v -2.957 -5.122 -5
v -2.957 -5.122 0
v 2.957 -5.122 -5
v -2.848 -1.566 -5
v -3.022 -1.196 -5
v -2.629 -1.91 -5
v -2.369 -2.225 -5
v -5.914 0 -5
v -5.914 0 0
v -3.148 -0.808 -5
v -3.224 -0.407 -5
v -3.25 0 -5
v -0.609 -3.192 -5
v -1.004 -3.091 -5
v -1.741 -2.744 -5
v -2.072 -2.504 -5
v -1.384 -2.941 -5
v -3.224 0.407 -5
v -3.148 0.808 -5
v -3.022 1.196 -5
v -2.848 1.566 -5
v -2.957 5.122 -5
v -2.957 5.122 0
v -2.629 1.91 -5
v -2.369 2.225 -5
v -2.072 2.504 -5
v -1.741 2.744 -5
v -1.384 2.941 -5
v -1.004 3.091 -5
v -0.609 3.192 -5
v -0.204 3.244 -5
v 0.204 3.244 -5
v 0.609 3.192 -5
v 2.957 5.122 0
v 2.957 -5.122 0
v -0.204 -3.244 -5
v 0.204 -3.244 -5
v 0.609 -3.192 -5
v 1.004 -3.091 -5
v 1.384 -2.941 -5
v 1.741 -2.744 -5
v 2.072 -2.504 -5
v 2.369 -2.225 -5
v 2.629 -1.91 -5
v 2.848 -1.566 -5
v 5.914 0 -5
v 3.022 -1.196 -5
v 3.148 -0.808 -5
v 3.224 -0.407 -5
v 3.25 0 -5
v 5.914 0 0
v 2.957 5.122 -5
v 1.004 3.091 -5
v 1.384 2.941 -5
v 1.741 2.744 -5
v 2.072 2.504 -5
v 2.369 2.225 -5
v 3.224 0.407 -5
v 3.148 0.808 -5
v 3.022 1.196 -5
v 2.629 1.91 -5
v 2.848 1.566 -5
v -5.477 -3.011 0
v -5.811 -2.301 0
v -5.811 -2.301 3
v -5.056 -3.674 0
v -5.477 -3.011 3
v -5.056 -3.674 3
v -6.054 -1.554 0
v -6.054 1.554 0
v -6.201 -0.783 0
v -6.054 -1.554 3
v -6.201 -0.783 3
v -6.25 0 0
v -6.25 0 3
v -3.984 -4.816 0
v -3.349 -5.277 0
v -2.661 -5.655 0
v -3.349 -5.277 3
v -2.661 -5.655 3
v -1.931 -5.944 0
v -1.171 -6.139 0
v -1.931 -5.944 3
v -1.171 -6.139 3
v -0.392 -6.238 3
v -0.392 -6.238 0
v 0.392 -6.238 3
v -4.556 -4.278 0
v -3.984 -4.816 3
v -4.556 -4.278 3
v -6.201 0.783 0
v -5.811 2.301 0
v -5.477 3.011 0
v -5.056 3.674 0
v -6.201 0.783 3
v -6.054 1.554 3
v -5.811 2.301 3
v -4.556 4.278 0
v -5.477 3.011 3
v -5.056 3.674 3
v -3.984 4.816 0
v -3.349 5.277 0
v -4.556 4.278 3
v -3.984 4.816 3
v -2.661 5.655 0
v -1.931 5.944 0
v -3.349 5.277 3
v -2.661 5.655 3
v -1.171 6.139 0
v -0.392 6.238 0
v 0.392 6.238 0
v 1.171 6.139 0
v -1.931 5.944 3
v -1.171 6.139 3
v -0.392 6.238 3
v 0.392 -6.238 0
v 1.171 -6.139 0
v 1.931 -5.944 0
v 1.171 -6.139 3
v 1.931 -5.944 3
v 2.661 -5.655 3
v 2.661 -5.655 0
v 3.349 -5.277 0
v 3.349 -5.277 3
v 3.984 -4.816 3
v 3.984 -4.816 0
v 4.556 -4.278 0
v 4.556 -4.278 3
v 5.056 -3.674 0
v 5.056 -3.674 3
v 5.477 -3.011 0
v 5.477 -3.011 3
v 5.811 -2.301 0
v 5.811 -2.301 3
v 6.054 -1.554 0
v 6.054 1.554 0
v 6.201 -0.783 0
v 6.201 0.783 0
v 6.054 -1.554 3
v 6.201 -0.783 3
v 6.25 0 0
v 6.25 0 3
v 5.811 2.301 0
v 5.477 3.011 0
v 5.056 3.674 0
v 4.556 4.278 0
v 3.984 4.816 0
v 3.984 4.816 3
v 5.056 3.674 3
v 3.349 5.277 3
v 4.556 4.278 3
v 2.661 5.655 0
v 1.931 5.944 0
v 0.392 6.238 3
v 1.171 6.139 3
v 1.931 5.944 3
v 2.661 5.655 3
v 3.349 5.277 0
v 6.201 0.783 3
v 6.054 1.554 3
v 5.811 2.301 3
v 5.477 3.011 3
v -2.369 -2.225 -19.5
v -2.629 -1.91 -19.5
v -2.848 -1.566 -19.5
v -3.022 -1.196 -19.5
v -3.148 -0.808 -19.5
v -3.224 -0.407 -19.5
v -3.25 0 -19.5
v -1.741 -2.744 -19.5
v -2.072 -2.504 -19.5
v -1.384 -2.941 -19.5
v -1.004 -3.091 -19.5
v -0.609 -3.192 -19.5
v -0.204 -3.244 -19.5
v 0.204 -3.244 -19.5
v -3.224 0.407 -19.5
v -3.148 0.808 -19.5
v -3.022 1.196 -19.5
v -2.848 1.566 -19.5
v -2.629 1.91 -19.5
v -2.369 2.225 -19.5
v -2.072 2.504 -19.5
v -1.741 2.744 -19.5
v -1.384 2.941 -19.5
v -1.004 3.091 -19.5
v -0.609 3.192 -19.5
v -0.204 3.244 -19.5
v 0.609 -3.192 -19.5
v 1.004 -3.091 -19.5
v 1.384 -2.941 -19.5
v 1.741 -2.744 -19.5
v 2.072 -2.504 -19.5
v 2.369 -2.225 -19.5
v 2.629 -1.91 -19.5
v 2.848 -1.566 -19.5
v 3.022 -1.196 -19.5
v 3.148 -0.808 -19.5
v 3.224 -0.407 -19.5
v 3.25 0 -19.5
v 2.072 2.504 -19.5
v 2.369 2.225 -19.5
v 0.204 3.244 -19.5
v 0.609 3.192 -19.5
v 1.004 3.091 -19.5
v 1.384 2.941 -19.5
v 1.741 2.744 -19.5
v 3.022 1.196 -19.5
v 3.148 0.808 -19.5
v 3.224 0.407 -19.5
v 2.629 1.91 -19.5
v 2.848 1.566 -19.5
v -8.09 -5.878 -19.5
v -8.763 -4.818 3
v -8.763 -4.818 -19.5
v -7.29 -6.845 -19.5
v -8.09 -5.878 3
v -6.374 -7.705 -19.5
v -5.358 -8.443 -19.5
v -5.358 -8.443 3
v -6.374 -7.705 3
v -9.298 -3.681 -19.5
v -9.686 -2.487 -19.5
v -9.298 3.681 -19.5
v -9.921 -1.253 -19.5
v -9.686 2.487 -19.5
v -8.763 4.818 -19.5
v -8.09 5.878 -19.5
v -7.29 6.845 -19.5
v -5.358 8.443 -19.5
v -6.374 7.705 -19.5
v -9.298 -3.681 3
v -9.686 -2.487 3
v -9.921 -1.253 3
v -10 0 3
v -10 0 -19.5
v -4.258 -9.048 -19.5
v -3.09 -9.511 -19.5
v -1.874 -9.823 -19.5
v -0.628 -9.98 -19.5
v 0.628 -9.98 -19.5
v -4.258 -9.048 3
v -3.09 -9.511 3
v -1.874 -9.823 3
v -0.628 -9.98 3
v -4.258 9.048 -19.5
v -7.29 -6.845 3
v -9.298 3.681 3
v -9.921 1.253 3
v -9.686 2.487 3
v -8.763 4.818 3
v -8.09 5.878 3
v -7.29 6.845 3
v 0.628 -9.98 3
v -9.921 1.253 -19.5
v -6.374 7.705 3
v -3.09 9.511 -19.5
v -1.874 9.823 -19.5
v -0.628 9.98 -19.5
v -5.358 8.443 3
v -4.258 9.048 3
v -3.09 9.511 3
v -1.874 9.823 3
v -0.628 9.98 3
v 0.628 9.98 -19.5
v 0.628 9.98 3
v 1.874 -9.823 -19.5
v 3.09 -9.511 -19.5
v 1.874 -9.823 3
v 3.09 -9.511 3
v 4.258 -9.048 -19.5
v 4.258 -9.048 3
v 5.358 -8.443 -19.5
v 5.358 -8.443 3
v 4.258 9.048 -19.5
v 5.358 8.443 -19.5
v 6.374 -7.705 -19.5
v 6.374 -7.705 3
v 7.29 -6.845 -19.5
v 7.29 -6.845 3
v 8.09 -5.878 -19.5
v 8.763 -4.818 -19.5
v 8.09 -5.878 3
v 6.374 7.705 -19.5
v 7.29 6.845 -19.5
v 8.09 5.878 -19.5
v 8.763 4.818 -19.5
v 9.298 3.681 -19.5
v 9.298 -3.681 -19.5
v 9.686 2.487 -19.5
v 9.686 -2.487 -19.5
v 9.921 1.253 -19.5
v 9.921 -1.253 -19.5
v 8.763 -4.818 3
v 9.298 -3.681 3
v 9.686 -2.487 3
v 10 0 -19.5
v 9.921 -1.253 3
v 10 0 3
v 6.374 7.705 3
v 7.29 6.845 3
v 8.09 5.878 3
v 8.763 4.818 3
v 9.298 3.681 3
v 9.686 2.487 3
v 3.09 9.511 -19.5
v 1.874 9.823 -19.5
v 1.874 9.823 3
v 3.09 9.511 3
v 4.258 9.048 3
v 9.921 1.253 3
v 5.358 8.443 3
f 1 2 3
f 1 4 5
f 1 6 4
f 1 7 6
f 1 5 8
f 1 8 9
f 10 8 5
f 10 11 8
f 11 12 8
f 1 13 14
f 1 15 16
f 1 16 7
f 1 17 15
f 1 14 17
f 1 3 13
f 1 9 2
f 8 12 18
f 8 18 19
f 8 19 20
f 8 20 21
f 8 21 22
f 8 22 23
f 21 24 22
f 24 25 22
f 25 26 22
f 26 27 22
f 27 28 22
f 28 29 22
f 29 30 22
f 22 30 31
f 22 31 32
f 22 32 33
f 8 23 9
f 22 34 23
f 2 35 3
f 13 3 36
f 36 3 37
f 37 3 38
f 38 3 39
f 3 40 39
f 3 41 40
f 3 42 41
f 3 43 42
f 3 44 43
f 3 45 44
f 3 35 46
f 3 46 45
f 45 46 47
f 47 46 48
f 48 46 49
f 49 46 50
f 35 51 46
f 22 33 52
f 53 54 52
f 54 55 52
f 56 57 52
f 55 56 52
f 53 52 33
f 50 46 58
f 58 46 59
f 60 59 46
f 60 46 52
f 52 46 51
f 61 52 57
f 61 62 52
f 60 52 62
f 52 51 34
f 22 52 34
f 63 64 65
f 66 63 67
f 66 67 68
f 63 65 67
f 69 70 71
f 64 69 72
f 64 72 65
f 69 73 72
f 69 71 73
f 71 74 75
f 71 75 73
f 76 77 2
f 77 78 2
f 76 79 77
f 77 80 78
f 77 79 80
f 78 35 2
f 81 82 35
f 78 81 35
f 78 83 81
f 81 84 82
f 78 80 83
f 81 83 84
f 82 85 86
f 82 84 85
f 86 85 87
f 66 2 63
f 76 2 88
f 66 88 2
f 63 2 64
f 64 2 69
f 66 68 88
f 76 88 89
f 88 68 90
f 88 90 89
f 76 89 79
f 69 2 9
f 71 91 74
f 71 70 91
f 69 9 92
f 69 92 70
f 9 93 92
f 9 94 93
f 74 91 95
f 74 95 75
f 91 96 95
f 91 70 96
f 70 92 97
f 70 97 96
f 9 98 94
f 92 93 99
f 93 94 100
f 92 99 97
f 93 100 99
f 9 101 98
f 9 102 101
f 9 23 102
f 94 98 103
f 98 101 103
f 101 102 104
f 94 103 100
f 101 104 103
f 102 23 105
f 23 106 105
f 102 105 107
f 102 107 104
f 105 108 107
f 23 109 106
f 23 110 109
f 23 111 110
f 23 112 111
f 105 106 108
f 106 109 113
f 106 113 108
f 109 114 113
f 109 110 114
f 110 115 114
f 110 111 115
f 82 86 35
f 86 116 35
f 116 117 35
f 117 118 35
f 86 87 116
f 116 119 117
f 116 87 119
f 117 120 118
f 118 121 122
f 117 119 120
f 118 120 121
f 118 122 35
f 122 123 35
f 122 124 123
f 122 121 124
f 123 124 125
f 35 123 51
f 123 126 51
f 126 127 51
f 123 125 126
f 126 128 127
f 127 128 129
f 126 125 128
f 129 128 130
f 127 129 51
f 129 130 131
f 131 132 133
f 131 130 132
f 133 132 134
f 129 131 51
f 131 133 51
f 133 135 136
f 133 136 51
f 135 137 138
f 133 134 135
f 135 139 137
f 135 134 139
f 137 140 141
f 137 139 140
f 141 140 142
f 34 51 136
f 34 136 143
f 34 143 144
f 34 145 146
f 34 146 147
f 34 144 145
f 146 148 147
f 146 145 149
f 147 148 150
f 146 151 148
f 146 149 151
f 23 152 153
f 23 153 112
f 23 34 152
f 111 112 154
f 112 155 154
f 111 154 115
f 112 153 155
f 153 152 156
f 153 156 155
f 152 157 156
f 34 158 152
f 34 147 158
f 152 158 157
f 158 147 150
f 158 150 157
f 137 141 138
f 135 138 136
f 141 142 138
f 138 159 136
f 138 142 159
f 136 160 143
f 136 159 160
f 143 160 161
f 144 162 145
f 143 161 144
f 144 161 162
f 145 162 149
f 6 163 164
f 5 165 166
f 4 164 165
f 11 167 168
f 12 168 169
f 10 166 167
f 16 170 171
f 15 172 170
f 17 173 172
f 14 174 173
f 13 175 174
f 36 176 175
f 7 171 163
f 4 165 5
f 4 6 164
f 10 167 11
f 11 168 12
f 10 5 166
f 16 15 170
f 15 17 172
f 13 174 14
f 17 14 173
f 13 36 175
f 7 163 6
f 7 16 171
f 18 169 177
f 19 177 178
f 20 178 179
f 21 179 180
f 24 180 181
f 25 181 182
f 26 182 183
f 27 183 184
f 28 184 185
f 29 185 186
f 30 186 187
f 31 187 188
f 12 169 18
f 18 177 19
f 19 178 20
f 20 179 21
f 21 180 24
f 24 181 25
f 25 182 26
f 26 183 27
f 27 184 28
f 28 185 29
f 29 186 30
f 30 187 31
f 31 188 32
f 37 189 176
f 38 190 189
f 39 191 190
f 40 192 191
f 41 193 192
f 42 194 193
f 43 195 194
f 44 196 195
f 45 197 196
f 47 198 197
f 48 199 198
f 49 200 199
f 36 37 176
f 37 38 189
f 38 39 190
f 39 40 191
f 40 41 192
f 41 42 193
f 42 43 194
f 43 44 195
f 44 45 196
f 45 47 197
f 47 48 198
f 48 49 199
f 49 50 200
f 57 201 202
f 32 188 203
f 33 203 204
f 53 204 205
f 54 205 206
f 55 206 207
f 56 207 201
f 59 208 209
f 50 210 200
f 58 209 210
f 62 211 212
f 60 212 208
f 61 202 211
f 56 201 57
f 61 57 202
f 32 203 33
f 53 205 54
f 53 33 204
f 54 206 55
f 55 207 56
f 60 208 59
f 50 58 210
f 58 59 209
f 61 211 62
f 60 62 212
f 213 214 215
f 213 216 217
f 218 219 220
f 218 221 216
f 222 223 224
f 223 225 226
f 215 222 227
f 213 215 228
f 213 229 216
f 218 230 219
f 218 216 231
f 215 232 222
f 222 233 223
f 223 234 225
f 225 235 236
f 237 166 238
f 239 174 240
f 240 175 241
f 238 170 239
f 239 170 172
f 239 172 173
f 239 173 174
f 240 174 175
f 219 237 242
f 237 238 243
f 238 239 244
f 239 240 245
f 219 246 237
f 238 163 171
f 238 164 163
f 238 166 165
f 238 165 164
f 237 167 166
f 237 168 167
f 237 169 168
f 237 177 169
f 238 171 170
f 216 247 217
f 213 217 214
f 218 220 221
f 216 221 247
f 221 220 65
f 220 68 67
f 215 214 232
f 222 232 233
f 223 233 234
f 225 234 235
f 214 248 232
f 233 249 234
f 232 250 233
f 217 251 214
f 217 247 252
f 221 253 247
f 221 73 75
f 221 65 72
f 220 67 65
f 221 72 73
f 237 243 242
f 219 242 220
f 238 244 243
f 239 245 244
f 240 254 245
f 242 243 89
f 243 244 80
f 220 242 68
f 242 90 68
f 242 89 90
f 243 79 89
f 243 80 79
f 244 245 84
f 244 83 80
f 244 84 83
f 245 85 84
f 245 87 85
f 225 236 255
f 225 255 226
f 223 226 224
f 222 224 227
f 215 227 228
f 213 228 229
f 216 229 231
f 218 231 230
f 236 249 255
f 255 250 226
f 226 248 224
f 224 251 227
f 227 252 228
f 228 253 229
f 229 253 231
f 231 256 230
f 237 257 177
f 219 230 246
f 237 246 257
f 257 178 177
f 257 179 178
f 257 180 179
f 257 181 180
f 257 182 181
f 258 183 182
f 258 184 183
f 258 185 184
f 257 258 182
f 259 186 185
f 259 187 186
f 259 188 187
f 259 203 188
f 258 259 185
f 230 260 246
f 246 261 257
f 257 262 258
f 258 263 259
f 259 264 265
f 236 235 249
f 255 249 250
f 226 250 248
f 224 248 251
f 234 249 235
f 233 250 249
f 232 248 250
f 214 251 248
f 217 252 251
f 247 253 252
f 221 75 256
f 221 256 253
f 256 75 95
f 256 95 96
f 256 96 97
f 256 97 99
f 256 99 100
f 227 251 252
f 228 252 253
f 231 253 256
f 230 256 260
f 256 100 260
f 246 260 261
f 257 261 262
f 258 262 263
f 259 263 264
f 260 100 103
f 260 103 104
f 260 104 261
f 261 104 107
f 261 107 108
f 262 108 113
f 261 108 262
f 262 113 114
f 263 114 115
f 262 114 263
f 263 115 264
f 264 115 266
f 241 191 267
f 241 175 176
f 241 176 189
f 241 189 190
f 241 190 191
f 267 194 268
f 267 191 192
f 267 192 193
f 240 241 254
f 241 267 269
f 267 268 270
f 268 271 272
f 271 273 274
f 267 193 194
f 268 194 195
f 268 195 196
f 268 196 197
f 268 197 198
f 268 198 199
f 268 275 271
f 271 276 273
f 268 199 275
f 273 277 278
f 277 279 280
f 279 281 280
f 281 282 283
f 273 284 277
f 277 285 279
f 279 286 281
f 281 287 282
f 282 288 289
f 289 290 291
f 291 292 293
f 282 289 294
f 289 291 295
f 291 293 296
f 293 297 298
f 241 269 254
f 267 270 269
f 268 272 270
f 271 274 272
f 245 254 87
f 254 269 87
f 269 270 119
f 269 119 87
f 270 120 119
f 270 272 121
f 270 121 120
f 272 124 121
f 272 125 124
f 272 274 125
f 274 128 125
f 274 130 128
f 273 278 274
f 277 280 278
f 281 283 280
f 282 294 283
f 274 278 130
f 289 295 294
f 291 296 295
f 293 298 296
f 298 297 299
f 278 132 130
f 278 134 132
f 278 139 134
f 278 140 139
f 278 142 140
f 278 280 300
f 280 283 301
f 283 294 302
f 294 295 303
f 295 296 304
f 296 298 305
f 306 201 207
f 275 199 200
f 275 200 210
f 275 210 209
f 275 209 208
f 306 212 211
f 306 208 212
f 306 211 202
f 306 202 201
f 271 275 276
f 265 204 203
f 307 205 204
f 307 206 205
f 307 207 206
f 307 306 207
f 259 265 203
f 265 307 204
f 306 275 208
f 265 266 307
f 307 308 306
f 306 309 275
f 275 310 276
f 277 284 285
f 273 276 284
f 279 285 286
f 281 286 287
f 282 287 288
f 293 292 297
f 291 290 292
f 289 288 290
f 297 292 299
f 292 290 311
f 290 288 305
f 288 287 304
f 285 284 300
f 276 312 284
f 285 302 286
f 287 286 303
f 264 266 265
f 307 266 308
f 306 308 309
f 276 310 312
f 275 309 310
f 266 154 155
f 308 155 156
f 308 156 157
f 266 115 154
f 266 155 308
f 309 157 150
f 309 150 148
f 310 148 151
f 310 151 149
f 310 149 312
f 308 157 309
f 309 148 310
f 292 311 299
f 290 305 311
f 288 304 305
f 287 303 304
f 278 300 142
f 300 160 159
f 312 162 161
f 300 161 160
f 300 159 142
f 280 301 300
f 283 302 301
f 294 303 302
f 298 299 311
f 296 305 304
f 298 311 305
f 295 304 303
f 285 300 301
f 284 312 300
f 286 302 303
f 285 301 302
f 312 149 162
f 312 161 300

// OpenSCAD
$fn = 50;

difference() {
	union() {
		translate(v = [0, 0, -19.5]) {
			cylinder(h = 22.5, r = 10.0);
		}
	}
	union() {
		translate(v = [0, 0, 0]) {
			rotate(a = [0, 0, 0]) {
				difference() {
					union() {
						translate(v = [0, 0, -5]) {
							linear_extrude(height = 5) {
								polygon(points = [[5.914249999999999, 0.0], [2.957125, 5.1218907443321156], [-2.9571249999999982, 5.1218907443321156], [-5.914249999999999, 7.242867331857232e-16], [-2.9571250000000022, -5.121890744332115], [2.9571249999999956, -5.121890744332118]]);
							}
						}
					}
					union();
				}
			}
		}
		#cylinder(h = 3, r = 6.25);
		#translate(v = [0, 0, -100.0]) {
			cylinder(h = 200, r = 3.25);
		}
	}
}
